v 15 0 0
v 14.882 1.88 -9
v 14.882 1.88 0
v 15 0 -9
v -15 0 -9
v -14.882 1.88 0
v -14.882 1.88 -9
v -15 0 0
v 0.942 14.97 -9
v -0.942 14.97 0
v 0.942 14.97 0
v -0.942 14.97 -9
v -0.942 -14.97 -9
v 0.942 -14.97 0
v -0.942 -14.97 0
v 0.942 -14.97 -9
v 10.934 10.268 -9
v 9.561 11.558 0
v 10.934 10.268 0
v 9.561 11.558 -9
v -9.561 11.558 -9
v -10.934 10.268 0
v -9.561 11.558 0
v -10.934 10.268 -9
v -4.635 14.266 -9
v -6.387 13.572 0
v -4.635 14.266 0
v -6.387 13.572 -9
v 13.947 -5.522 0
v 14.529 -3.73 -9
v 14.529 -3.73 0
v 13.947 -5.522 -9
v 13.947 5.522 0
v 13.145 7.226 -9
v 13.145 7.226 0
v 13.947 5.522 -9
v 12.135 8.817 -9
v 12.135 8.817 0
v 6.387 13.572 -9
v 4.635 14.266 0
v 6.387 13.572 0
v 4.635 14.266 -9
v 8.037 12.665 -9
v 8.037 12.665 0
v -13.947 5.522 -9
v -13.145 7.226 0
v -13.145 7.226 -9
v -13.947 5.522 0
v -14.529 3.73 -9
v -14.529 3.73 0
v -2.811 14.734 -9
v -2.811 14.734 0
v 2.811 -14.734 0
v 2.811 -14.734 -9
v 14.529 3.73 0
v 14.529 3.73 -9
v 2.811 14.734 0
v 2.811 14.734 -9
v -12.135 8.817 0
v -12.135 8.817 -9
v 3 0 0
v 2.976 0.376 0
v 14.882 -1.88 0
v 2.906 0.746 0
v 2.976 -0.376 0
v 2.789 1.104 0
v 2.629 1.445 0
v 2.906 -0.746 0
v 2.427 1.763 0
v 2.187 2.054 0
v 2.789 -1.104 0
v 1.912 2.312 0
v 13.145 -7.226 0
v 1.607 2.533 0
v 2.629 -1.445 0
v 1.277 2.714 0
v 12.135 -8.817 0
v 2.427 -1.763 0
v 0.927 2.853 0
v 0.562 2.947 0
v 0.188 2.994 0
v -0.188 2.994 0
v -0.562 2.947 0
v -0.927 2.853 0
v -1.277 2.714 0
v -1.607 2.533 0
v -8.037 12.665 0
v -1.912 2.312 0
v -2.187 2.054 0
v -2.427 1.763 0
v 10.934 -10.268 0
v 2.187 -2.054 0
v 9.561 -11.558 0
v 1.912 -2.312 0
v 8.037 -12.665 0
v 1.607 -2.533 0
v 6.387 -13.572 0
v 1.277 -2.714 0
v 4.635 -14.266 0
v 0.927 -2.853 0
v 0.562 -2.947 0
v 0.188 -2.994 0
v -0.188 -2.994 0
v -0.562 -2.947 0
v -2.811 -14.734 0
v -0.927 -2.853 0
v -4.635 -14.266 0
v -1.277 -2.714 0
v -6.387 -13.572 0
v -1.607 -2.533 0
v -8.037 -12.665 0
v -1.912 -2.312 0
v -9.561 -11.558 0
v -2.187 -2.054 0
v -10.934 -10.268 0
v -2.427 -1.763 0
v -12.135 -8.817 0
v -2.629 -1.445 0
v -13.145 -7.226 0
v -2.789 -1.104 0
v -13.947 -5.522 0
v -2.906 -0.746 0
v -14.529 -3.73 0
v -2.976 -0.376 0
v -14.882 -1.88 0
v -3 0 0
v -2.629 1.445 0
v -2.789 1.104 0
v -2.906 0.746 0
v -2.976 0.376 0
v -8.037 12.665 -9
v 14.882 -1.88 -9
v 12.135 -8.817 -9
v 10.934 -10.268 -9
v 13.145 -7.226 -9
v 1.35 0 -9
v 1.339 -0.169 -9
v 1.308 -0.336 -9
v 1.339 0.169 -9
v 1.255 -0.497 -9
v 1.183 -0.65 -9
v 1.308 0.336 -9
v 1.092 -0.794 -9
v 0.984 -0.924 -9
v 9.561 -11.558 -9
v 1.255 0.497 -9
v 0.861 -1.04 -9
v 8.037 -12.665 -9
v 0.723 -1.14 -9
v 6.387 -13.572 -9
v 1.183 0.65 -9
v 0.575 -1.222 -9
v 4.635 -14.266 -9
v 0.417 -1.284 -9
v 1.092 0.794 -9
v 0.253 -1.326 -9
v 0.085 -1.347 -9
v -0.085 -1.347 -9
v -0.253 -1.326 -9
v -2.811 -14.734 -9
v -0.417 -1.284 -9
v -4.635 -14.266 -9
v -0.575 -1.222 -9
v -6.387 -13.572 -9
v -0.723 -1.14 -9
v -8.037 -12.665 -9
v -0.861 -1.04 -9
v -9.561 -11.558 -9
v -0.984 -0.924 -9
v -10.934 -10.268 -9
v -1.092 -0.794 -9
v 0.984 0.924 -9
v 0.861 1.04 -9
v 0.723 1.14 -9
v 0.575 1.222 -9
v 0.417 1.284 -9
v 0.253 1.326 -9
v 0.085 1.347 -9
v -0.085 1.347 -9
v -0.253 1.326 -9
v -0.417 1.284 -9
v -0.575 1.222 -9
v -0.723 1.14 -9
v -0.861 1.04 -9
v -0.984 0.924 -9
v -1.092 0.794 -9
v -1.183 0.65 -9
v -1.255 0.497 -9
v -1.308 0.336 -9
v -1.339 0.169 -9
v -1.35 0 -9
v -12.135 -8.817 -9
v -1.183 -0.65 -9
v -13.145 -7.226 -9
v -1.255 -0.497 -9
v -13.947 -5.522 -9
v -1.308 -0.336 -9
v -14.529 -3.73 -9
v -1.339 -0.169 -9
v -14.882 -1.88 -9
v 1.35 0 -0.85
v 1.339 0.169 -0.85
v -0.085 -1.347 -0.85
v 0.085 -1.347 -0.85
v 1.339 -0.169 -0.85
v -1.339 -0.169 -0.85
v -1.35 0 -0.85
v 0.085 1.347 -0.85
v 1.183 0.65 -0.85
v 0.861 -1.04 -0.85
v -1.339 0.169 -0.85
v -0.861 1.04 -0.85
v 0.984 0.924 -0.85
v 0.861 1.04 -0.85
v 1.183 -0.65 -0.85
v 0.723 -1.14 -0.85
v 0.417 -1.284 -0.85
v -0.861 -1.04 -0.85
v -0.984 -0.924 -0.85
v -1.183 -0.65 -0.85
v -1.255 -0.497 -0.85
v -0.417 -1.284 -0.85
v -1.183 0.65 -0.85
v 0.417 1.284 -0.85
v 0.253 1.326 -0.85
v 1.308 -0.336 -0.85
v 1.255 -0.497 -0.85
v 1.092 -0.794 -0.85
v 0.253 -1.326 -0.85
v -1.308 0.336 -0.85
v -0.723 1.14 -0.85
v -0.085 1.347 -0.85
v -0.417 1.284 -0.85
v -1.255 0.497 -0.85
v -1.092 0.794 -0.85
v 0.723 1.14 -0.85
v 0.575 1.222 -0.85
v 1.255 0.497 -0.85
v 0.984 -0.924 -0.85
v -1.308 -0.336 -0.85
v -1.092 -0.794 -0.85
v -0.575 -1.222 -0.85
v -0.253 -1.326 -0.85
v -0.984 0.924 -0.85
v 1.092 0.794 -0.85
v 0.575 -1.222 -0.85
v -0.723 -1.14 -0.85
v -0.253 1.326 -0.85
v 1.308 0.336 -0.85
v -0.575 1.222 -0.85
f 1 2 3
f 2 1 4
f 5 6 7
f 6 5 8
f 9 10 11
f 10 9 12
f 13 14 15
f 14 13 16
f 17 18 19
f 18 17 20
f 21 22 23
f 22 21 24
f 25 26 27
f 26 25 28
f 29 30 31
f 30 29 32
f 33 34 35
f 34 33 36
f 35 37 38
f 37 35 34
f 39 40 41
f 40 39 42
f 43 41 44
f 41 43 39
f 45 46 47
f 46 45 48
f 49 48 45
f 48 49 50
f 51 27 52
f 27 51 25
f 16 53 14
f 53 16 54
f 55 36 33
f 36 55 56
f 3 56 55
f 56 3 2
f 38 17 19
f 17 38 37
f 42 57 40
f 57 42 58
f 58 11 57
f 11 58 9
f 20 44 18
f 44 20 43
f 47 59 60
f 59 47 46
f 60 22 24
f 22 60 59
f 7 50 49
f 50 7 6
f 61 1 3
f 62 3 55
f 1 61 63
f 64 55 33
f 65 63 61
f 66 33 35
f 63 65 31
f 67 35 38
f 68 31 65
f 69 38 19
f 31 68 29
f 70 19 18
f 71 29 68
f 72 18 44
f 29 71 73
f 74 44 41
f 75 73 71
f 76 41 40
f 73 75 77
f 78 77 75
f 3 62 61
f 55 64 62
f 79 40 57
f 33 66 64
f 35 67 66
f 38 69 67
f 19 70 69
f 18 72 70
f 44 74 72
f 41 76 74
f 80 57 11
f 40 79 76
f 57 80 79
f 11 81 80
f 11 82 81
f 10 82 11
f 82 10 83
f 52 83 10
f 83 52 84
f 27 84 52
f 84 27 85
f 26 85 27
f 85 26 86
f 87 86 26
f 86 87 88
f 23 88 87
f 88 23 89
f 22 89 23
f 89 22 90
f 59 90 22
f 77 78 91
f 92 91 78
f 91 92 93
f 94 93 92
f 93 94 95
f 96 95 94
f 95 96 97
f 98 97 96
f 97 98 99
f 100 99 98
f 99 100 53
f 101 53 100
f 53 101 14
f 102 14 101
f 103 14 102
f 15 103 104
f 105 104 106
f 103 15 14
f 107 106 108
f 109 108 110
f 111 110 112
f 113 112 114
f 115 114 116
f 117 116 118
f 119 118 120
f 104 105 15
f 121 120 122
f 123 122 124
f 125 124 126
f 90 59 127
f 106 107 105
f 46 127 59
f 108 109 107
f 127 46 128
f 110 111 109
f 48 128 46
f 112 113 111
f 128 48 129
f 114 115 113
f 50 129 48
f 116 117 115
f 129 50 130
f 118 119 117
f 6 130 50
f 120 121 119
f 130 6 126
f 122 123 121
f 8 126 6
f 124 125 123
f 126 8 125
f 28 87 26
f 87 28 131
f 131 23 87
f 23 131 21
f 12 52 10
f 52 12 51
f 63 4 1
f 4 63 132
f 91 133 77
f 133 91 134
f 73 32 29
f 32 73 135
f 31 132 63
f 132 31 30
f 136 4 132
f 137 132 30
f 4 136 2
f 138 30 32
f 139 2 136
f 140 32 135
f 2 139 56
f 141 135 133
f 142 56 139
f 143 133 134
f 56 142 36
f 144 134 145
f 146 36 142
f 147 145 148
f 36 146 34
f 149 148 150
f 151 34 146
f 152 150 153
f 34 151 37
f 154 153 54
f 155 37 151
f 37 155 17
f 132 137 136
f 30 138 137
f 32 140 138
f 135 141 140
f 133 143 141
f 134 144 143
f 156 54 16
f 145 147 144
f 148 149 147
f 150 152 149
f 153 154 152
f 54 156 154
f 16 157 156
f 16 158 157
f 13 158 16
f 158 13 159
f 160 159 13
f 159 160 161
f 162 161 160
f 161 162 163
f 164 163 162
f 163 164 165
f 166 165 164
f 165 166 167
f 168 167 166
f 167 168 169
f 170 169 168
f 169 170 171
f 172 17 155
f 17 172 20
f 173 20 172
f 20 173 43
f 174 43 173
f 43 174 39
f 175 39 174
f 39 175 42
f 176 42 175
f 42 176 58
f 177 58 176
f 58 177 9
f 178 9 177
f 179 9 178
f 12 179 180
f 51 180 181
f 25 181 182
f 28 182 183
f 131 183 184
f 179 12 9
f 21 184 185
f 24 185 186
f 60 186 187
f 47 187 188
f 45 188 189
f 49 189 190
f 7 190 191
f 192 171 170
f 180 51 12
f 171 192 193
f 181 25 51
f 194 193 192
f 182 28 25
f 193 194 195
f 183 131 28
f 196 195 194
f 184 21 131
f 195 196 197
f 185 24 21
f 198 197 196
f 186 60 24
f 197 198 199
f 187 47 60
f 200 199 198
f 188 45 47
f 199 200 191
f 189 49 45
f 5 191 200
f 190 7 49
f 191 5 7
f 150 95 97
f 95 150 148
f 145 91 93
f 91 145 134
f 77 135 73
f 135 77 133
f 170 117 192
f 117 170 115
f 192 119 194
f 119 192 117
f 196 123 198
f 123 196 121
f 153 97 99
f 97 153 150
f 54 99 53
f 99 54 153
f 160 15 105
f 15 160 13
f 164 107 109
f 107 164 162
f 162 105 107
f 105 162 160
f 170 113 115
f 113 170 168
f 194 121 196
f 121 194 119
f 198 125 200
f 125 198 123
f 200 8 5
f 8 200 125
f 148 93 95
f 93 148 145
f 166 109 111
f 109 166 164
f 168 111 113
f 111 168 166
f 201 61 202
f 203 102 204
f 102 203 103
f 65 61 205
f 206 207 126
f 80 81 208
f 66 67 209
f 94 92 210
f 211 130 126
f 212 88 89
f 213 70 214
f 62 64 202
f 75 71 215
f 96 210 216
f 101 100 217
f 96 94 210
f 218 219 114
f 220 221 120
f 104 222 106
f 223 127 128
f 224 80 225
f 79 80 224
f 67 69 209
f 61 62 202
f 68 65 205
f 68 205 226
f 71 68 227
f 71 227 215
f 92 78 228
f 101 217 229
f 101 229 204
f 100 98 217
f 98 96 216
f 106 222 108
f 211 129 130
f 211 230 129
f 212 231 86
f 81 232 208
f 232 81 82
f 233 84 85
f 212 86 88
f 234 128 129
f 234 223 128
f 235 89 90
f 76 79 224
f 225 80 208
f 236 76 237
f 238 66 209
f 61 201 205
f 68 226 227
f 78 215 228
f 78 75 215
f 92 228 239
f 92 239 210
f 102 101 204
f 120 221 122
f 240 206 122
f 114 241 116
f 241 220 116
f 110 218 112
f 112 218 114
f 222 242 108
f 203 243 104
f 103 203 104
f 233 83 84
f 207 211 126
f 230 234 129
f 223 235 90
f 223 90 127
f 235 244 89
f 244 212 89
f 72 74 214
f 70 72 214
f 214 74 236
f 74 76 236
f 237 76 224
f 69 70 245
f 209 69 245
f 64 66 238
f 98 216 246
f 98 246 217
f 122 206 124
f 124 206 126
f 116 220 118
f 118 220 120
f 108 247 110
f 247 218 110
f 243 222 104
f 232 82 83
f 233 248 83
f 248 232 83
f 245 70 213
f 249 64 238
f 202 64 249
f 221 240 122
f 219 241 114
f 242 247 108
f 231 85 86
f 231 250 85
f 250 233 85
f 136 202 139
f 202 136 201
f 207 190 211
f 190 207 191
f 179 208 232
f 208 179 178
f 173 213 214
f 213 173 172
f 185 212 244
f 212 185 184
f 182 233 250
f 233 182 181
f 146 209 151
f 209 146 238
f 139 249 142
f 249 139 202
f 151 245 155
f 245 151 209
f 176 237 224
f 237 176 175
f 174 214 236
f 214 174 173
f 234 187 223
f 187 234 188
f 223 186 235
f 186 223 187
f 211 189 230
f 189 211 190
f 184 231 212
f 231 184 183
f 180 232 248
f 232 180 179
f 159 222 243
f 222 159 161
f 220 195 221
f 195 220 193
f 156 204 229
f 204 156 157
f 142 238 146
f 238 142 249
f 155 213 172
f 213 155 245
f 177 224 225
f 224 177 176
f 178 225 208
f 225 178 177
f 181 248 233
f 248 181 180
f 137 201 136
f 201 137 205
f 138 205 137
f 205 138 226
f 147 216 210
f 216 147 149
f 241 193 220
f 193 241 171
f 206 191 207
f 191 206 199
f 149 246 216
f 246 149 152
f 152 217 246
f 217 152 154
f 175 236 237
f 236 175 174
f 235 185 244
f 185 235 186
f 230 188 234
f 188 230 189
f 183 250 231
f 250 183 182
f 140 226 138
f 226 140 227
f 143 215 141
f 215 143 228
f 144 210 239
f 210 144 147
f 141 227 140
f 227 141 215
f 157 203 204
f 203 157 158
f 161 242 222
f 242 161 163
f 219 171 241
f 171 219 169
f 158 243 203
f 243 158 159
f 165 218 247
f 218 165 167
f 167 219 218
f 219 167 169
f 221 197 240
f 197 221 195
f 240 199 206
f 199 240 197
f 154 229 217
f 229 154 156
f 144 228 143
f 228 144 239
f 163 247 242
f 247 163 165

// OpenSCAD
$fn = 50;


difference() {
	union() {
		translate(v = [0, 0, -9.0000000000]) {
			cylinder(h = 9, r = 15.0000000000);
		}
		translate(v = [0, 0, -9.0000000000]) {
			cylinder(h = 9, r = 2.8750000000);
		}
	}
	union() {
		translate(v = [0, 0, 0]) {
			rotate(a = [0, 0, 0]) {
				difference() {
					union() {
						translate(v = [0, 0, -9.0000000000]) {
							cylinder(h = 9, r = 1.0000000000);
						}
						translate(v = [0, 0, -0.8500000000]) {
							cylinder(h = 0.8500000000, r1 = 1.3500000000, r2 = 3.0000000000);
						}
						translate(v = [0, 0, -9.0000000000]) {
							cylinder(h = 9, r = 1.3500000000);
						}
						translate(v = [0, 0, -9.0000000000]) {
							cylinder(h = 9, r = 1.0000000000);
						}
					}
					union();
				}
			}
		}
	}
}
